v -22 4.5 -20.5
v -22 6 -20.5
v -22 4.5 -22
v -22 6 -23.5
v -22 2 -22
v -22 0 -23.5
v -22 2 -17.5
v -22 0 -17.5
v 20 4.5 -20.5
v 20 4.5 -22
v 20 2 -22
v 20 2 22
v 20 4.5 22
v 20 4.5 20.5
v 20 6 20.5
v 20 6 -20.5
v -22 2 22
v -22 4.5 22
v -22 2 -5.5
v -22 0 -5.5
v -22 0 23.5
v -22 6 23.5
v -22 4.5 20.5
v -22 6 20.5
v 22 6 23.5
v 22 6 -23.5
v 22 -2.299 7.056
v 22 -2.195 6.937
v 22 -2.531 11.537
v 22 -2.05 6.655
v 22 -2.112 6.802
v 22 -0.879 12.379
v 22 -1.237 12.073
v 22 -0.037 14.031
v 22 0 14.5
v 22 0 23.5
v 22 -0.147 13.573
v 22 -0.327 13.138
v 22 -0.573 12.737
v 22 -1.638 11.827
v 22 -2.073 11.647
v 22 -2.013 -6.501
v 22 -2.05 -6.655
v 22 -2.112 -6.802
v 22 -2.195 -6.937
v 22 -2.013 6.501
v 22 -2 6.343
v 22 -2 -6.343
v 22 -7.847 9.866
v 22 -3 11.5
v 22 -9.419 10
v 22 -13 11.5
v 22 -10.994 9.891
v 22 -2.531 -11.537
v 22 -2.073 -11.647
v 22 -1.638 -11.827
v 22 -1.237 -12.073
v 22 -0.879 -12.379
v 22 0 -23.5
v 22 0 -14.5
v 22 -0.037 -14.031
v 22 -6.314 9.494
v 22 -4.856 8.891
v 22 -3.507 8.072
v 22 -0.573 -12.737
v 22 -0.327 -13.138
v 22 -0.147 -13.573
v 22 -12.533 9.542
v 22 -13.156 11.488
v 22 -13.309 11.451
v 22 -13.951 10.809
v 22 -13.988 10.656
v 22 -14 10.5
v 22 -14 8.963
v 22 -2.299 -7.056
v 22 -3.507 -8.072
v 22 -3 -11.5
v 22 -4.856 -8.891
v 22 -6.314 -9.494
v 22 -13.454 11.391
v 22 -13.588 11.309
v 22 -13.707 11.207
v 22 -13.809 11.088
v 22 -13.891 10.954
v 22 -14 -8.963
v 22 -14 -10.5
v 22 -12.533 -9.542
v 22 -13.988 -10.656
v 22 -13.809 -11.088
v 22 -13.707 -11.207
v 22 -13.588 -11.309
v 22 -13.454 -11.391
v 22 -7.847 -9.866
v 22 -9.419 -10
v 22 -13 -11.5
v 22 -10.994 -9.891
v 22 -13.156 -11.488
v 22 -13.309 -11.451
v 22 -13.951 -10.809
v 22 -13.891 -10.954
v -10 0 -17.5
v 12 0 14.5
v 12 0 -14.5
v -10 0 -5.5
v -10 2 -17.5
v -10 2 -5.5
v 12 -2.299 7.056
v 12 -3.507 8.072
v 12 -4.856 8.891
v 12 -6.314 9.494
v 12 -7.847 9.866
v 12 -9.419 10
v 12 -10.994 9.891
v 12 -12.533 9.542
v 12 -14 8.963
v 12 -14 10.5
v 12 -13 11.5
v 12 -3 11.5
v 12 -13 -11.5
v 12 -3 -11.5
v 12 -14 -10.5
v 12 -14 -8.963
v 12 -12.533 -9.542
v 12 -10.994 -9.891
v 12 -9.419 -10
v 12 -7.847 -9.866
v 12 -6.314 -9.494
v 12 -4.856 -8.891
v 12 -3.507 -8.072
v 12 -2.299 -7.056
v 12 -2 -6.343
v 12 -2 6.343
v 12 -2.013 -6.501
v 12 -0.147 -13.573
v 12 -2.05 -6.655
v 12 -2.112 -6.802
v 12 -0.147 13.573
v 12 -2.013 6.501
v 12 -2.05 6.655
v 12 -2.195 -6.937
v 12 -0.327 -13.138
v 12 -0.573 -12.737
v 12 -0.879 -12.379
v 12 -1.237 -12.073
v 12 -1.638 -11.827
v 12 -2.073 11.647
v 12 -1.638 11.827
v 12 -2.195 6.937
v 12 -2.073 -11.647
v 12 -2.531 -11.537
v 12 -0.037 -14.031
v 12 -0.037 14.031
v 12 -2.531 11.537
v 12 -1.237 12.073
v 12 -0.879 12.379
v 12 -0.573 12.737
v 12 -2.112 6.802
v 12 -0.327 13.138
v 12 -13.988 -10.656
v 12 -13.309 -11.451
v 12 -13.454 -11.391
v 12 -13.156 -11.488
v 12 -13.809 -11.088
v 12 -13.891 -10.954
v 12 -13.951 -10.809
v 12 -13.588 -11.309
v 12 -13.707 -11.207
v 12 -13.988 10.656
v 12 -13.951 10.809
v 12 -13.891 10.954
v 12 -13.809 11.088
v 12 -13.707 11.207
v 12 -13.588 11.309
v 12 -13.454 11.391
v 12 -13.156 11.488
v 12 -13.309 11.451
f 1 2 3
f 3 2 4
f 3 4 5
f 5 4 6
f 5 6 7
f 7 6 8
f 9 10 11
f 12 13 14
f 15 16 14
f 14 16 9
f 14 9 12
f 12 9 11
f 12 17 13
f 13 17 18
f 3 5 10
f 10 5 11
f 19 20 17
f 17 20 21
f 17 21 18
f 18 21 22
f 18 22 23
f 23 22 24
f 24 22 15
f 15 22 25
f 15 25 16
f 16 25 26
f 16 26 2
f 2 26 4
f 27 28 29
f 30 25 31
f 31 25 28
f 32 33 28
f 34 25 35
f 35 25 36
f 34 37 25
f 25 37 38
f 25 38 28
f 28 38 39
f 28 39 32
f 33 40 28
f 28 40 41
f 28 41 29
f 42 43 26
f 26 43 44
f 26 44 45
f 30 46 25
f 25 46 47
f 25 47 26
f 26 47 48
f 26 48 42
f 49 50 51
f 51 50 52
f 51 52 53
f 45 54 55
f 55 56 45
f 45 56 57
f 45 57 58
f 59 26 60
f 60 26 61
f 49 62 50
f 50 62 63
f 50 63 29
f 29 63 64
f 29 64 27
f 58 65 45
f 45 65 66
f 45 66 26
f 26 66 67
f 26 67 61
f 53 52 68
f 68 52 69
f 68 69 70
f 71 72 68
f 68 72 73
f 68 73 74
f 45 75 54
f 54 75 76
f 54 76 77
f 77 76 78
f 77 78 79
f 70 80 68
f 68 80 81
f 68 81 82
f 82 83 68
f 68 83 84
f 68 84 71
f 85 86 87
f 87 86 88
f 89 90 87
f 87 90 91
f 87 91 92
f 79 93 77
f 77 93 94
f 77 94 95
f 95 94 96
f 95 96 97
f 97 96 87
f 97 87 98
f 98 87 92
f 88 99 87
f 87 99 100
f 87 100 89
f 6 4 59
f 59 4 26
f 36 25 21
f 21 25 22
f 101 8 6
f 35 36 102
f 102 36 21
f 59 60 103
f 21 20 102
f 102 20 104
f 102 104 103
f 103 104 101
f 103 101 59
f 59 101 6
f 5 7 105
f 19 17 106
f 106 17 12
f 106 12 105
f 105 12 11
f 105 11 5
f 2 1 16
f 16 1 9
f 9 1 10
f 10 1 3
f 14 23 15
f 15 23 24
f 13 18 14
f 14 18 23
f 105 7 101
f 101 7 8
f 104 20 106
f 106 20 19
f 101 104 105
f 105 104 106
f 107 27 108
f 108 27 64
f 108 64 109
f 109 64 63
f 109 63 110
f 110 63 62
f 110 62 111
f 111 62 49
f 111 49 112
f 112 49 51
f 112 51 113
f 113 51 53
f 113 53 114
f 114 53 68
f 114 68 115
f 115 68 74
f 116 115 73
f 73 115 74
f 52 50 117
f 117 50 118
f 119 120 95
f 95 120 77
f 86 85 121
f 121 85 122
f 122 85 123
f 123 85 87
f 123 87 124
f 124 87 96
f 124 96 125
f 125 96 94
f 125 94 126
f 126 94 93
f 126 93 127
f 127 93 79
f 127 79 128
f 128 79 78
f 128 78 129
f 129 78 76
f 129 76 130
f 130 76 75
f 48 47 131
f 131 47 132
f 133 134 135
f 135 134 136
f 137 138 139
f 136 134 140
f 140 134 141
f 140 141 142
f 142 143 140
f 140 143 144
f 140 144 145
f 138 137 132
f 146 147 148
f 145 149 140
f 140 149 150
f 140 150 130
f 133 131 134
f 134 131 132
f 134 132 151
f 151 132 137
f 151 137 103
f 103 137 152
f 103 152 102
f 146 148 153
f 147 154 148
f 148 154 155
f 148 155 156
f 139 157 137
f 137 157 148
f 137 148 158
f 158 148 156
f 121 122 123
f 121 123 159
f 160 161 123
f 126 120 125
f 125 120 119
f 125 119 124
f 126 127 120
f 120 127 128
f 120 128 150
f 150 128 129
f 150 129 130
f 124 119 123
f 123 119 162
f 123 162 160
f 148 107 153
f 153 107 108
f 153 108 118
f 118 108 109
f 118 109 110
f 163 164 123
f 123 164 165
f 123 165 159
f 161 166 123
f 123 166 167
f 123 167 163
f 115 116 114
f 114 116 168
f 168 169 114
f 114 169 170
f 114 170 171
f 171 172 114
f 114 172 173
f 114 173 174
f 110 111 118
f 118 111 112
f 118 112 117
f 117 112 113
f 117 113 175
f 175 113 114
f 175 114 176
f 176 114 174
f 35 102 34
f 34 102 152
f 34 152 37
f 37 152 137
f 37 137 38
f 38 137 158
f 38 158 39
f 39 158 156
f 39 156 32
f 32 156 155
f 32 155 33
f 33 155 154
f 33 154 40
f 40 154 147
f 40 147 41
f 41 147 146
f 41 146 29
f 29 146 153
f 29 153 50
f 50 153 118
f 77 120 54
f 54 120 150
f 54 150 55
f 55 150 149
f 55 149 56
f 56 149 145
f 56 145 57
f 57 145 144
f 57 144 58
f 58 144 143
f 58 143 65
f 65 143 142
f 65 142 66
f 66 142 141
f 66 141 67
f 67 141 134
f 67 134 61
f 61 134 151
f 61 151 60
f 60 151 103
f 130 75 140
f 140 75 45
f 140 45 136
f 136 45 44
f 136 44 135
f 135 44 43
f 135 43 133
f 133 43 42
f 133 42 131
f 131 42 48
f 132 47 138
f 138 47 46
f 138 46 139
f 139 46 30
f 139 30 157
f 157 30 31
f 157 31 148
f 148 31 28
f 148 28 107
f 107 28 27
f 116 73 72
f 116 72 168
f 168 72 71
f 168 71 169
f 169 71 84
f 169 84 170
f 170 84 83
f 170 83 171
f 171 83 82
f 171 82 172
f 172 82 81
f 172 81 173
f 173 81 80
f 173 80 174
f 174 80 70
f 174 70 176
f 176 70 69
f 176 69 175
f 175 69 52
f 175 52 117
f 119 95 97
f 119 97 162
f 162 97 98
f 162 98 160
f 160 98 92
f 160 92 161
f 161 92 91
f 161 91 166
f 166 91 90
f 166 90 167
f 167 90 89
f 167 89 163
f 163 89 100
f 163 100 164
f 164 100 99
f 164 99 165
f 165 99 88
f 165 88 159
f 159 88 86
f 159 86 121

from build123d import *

# Parameters (mm, degrees)
SKETCH3_W           = 44
SKETCH3_H           = 47
BOSS_EXTRUDE1_DEPTH = 6
SKETCH4_W           = 42
SKETCH4_H           = 44
CUT_EXTRUDE1_DEPTH  = 4
SKETCH5_W           = 44
SKETCH5_H           = 3
BOSS_EXTRUDE2_DEPTH = 1.5
SKETCH6_W           = 24
SKETCH6_H           = 12
CUT_EXTRUDE2_DEPTH  = 2
BOSS_EXTRUDE3_START = 22
BOSS_EXTRUDE3_DEPTH = 10
FILLET1_R           = 3
FILLET2_R           = 1


with BuildPart() as part:
    # Sketch3 → Boss-Extrude1 (new body)
    with BuildSketch(Plane(origin=(0, 0, 0), x_dir=(1, 0, 0), z_dir=(0, 1, 0))):
        Rectangle(SKETCH3_W, SKETCH3_H)
    extrude(amount=BOSS_EXTRUDE1_DEPTH)

    # Sketch4 → Cut-Extrude1 (cut)
    with BuildSketch(Plane(origin=(0, 6, 0), x_dir=(1, 0, 0), z_dir=(0, 1, 0))):
        with Locations((-1, 0)):
            Rectangle(SKETCH4_W, SKETCH4_H)
    extrude(amount=-CUT_EXTRUDE1_DEPTH, mode=Mode.SUBTRACT)

    # Sketch5 → Boss-Extrude2 (add)
    with BuildSketch(Plane(origin=(0, 6, 0), x_dir=(1, 0, 0), z_dir=(0, 1, 0))):
        with Locations((0, 22)):
            Rectangle(SKETCH5_W, SKETCH5_H)
    boss_extrude2 = extrude(amount=-BOSS_EXTRUDE2_DEPTH)

    # Mirror1: Boss-Extrude2 across plane
    add(boss_extrude2.mirror(Plane.XY))

    # Sketch6 → Cut-Extrude2 (cut)
    with BuildSketch(Plane.XZ):
        with Locations((-22, -11.5)):
            Rectangle(SKETCH6_W, SKETCH6_H)
    extrude(amount=-CUT_EXTRUDE2_DEPTH, mode=Mode.SUBTRACT)

    # Sketch7 → Boss-Extrude3 (add)
    with BuildSketch(Plane(origin=(0, 0, 0), x_dir=(0, 0, -1), z_dir=(1, 0, 0)).offset(BOSS_EXTRUDE3_START)):
        with BuildLine():
            Line((-6.75, -2), (6.75, -2))
            ThreePointArc((6.75, -2), (9.829603655, -7.636154321), (8.962619003, -14))
            Line((8.962619003, -14), (11.5, -14))
            Line((11.5, -14), (11.5, 0))
            Line((11.5, 0), (-11.5, 0))
            Line((-11.5, 0), (-11.5, -14))
            Line((-11.5, -14), (-8.962619003, -14))
            ThreePointArc((-8.962619003, -14), (-9.829603655, -7.636154321), (-6.75, -2))
        make_face()
    extrude(amount=-BOSS_EXTRUDE3_DEPTH)

    # Fillet1
    fillet1_edges = [part.edges().sort_by_distance(p)[0] for p in [
        (17, 0, 11.5),
        (17, 0, -11.5),
    ]]
    fillet(fillet1_edges, radius=FILLET1_R)

    # Fillet2
    fillet2_edges = [part.edges().sort_by_distance(p)[0] for p in [
        (17, -2, 6.75),
        (17, -14, 11.5),
        (17, -14, -11.5),
        (17, -2, -6.75),
    ]]
    fillet(fillet2_edges, radius=FILLET2_R)


solid = part.part
